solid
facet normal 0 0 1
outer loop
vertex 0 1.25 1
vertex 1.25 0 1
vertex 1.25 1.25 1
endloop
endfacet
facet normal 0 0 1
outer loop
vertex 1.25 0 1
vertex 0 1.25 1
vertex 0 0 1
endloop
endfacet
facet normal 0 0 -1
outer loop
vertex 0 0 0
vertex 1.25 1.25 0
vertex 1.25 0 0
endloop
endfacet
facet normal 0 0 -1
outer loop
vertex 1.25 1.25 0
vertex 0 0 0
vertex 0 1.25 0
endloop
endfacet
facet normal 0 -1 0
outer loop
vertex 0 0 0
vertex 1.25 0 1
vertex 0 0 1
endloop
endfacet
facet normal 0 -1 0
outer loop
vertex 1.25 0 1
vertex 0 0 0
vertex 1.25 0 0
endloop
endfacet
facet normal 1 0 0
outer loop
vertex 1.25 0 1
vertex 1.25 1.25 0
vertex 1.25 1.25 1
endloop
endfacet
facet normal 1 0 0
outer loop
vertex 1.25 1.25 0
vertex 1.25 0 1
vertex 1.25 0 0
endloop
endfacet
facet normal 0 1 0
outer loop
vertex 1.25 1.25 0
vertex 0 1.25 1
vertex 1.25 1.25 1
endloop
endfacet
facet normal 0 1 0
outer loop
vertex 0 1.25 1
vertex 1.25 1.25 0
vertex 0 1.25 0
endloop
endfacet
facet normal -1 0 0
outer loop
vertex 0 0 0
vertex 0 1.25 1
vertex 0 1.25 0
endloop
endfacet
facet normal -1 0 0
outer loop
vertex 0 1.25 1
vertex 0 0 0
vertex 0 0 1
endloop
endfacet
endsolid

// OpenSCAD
/* Warning, this is a very basic generator with a lot of approximation 
input data : [UDFN, HDA, 1.25x1.25mm, 4, , A, C04-01150A]
generated by com.zoubworld.electronics.cad.model3d.Basic
Date : Sun Feb 15 10:50:49 CET 2026
*/

//body
color("black")
translate([0,0,0])
cube([1.25,1.25,1.0], center=false);
